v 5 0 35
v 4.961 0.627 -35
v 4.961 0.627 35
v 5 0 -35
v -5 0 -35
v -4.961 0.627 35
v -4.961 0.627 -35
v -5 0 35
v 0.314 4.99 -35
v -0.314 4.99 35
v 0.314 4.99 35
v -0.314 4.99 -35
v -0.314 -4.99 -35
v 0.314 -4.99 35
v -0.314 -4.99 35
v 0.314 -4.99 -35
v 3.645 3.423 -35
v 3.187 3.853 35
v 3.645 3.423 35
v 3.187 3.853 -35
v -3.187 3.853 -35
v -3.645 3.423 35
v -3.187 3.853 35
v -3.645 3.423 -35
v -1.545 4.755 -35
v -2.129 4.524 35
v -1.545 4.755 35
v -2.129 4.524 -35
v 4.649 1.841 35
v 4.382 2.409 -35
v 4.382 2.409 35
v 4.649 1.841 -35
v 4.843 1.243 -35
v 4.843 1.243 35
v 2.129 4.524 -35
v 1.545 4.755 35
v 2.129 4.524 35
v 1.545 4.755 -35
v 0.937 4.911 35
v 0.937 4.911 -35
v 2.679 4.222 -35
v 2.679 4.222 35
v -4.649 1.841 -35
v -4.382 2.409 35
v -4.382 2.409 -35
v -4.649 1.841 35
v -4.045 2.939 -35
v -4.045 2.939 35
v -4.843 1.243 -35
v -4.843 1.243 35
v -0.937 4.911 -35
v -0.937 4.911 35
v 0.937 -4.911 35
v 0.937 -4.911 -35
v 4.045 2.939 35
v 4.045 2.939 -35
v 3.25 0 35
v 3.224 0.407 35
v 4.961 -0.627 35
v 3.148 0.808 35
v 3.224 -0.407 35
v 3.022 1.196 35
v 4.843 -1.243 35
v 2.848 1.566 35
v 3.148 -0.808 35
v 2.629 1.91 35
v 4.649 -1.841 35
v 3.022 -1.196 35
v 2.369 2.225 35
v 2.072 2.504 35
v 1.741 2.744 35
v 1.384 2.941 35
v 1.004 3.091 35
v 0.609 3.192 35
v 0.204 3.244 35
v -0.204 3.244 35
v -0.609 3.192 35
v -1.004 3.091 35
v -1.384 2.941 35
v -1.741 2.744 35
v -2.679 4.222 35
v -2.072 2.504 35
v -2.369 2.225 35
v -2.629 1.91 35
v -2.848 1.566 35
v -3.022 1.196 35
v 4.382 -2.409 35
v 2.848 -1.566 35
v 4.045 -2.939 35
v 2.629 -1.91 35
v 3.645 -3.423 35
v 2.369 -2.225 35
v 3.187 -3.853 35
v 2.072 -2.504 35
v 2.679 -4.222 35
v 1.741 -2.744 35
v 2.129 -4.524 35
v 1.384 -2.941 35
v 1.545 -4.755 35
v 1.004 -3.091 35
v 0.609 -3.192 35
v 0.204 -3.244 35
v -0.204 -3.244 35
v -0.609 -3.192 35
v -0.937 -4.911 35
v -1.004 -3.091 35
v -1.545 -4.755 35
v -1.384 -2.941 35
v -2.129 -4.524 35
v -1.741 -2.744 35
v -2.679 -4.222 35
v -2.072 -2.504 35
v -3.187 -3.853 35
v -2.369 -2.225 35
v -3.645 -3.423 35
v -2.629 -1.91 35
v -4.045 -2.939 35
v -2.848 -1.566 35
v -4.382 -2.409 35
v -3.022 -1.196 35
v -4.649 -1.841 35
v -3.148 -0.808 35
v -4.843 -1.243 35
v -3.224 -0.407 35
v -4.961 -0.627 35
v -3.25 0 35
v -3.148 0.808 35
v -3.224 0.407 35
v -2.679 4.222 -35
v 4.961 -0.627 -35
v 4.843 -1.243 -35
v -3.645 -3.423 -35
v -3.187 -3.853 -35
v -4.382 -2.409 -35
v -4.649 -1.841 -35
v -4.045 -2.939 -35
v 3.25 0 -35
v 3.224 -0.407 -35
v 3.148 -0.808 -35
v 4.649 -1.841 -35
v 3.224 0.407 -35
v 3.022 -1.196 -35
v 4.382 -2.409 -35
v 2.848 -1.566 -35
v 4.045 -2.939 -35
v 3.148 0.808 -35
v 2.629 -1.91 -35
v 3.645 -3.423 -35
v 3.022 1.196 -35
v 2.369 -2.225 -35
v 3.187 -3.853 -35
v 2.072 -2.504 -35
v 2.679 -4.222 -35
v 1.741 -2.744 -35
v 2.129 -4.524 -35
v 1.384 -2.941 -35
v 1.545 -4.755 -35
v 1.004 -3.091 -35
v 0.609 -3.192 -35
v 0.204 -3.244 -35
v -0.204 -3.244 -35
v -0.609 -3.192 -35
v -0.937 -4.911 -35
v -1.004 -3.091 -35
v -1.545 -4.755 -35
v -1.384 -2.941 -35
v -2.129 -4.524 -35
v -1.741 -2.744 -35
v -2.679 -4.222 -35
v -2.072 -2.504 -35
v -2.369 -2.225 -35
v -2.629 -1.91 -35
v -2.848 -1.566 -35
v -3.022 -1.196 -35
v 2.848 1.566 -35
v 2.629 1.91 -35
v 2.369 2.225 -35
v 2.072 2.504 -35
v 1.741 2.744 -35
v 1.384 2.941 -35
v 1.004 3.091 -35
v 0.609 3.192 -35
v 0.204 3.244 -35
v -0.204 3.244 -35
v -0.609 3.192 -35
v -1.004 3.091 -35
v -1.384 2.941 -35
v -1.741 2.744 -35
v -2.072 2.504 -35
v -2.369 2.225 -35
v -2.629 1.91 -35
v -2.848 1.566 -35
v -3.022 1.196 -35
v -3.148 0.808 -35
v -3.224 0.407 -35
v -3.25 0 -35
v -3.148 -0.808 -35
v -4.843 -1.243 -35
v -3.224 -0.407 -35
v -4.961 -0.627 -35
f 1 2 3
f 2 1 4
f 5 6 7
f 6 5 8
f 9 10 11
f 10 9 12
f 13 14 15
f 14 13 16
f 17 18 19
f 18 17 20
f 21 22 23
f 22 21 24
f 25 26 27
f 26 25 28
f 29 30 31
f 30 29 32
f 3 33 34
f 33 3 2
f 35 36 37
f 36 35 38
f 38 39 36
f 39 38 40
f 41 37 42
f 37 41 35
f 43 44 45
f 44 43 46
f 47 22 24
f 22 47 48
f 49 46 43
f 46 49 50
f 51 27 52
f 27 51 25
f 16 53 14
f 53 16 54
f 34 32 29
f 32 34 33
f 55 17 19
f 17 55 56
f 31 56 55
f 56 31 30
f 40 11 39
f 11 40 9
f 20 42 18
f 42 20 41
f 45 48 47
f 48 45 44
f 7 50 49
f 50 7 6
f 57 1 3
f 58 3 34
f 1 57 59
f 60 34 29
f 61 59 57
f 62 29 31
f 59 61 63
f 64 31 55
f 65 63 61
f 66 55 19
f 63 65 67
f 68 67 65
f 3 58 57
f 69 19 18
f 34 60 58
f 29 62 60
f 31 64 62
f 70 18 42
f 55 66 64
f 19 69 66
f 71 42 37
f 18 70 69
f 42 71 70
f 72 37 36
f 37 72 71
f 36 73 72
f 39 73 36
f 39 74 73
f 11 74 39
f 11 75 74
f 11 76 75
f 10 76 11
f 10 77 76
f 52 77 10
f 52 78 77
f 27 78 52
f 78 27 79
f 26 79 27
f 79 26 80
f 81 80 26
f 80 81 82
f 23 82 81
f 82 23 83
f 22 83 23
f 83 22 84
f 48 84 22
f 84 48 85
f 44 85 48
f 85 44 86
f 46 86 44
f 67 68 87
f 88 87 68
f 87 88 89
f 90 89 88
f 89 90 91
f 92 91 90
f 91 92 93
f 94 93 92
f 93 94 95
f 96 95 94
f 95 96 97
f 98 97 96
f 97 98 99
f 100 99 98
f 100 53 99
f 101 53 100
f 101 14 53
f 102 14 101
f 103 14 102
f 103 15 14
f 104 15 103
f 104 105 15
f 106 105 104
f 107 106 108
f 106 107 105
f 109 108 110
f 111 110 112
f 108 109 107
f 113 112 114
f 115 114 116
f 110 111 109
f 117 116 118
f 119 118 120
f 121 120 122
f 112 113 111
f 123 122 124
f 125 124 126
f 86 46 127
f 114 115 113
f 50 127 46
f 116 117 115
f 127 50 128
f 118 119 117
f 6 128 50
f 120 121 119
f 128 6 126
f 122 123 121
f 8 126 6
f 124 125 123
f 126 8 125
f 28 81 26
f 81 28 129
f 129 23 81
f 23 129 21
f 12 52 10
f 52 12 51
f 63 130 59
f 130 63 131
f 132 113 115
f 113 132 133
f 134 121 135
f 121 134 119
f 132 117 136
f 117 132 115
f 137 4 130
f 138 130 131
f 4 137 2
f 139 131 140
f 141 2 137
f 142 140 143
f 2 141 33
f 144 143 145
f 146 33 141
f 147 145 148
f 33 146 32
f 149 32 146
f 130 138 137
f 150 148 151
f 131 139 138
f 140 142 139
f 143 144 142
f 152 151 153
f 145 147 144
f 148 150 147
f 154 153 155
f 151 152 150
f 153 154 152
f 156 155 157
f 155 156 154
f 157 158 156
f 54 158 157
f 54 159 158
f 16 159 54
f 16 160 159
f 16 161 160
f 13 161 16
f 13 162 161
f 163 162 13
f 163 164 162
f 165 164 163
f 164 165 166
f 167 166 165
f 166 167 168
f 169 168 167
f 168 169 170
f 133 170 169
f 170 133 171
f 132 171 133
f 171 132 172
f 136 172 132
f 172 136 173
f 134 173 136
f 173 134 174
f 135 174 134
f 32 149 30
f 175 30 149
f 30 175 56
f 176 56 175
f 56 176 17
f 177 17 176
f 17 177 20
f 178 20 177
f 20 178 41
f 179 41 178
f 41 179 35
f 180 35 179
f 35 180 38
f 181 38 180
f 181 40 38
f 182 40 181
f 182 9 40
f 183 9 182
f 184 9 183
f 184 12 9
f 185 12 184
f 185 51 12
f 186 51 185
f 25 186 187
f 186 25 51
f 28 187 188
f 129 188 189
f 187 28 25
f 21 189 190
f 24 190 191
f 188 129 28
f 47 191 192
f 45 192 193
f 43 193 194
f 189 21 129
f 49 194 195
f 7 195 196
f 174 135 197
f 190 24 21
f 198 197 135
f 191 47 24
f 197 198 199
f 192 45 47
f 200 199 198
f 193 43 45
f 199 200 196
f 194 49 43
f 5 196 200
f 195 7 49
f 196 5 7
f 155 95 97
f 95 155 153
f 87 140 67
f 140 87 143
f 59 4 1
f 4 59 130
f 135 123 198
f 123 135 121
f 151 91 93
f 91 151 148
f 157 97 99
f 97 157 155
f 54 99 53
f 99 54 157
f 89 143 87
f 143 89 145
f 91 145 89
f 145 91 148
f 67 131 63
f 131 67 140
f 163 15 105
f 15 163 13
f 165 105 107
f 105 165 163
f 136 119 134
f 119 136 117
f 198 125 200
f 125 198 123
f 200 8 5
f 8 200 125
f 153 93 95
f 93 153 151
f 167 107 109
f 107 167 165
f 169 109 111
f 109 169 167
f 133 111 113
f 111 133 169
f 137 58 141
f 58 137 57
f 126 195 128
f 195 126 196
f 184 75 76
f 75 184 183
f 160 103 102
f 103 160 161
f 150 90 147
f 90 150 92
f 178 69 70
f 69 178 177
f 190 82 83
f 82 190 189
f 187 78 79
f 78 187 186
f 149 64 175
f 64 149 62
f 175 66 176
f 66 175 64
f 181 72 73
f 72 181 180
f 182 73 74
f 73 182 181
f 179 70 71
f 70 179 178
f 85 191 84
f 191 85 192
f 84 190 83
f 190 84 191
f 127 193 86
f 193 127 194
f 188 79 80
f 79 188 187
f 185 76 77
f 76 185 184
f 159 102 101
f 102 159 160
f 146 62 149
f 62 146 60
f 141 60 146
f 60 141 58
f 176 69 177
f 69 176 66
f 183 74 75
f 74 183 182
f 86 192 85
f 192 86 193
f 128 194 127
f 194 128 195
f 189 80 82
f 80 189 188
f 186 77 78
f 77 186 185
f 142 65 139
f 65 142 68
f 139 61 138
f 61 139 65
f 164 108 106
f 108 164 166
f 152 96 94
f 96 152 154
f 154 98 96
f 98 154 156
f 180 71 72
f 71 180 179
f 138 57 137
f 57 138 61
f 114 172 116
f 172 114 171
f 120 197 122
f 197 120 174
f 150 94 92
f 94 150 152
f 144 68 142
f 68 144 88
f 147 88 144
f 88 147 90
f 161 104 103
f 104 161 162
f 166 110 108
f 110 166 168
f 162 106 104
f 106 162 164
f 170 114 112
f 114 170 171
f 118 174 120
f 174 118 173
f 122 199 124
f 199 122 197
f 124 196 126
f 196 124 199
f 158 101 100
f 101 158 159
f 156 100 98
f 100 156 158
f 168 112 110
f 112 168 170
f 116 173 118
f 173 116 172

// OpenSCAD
$fn = 50;


difference() {
	union() {
		translate(v = [0, 0, -35.0000000000]) {
			cylinder(h = 70, r = 5.0000000000);
		}
	}
	union() {
		translate(v = [0, 0, -100.0000000000]) {
			cylinder(h = 200, r = 3.2500000000);
		}
	}
}
